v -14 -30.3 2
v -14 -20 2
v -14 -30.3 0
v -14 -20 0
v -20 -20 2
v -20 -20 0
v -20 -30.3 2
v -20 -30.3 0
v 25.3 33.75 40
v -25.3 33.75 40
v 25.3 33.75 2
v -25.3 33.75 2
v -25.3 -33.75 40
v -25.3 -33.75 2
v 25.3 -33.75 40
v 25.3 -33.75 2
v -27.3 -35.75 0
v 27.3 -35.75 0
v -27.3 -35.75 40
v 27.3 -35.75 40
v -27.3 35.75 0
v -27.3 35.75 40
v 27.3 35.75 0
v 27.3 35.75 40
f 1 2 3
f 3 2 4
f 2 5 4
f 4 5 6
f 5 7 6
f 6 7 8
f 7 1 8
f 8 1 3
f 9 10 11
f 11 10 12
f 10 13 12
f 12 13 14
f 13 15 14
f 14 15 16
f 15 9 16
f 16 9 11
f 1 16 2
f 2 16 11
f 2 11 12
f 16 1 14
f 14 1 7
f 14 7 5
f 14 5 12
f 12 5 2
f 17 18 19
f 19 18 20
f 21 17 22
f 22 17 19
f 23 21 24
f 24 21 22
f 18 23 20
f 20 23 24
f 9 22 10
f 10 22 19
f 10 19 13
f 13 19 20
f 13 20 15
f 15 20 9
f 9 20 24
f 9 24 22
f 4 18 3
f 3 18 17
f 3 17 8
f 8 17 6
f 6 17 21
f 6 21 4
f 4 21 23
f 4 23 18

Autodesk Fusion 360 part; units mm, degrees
sketch "Sketch1" plane through (0, 0, 0) normal (0, 0, 1) x (1, 0, 0)
  line L0 (27.3, 35.75) -> (-27.3, 35.75)
  line L1 (-27.3, 35.75) -> (-27.3, -35.75)
  line L2 (-27.3, -35.75) -> (27.3, -35.75)
  line L3 (27.3, -35.75) -> (27.3, 35.75)
  line L4 (27.3, 35.75) -> (-27.3, -35.75) construction
  line L5 (-27.3, 35.75) -> (27.3, -35.75) construction
  dimension "d1" = 54.6
  dimension "d2" = 71.5
extrude "Extrude1" add sketch "Sketch1" along normal blind 40
sketch "Sketch2" plane through (0, 0, 40) normal (0, 0, 1) x (-1, 0, 0)
  line L0 (-27.3, 35.75) -> (-27.3, -35.75)
  line L1 (-27.3, -35.75) -> (27.3, -35.75)
  line L2 (27.3, -35.75) -> (27.3, 35.75)
  line L3 (27.3, 35.75) -> (-27.3, 35.75)
  line L4 (-25.3, -33.75) -> (25.3, -33.75)
  line L5 (25.3, -33.75) -> (25.3, 33.75)
  line L6 (25.3, 33.75) -> (-25.3, 33.75)
  line L7 (-25.3, 33.75) -> (-25.3, -33.75)
  line L8 (-25.3, -33.75) -> (25.3, 33.75) construction
  line L9 (25.3, -33.75) -> (-25.3, 33.75) construction
  dimension "d5" = 50.6
  dimension "d6" = 67.5
extrude "Extrude2" cut sketch "Sketch2" against normal blind 38 contours L4 L5 L6 L7
sketch "Sketch3" plane through (0, 0, 2) normal (0, 0, 1) x (-1, 0, 0)
  line L0 (-25.3, 33.75) -> (-25.3, -33.75)
  line L1 (-25.3, -33.75) -> (25.3, -33.75)
  line L2 (25.3, -33.75) -> (25.3, 33.75)
  line L3 (25.3, 33.75) -> (-25.3, 33.75)
  line L4 (20, 20) -> (14, 20)
  line L5 (14, 20) -> (14, 30.3)
  line L6 (14, 30.3) -> (20, 30.3)
  line L7 (20, 30.3) -> (20, 20)
  dimension "d9" = 6
  dimension "d10" = 10.3
extrude "Extrude3" cut sketch "Sketch3" against normal blind 2 contours L4 L5 L6 L7
